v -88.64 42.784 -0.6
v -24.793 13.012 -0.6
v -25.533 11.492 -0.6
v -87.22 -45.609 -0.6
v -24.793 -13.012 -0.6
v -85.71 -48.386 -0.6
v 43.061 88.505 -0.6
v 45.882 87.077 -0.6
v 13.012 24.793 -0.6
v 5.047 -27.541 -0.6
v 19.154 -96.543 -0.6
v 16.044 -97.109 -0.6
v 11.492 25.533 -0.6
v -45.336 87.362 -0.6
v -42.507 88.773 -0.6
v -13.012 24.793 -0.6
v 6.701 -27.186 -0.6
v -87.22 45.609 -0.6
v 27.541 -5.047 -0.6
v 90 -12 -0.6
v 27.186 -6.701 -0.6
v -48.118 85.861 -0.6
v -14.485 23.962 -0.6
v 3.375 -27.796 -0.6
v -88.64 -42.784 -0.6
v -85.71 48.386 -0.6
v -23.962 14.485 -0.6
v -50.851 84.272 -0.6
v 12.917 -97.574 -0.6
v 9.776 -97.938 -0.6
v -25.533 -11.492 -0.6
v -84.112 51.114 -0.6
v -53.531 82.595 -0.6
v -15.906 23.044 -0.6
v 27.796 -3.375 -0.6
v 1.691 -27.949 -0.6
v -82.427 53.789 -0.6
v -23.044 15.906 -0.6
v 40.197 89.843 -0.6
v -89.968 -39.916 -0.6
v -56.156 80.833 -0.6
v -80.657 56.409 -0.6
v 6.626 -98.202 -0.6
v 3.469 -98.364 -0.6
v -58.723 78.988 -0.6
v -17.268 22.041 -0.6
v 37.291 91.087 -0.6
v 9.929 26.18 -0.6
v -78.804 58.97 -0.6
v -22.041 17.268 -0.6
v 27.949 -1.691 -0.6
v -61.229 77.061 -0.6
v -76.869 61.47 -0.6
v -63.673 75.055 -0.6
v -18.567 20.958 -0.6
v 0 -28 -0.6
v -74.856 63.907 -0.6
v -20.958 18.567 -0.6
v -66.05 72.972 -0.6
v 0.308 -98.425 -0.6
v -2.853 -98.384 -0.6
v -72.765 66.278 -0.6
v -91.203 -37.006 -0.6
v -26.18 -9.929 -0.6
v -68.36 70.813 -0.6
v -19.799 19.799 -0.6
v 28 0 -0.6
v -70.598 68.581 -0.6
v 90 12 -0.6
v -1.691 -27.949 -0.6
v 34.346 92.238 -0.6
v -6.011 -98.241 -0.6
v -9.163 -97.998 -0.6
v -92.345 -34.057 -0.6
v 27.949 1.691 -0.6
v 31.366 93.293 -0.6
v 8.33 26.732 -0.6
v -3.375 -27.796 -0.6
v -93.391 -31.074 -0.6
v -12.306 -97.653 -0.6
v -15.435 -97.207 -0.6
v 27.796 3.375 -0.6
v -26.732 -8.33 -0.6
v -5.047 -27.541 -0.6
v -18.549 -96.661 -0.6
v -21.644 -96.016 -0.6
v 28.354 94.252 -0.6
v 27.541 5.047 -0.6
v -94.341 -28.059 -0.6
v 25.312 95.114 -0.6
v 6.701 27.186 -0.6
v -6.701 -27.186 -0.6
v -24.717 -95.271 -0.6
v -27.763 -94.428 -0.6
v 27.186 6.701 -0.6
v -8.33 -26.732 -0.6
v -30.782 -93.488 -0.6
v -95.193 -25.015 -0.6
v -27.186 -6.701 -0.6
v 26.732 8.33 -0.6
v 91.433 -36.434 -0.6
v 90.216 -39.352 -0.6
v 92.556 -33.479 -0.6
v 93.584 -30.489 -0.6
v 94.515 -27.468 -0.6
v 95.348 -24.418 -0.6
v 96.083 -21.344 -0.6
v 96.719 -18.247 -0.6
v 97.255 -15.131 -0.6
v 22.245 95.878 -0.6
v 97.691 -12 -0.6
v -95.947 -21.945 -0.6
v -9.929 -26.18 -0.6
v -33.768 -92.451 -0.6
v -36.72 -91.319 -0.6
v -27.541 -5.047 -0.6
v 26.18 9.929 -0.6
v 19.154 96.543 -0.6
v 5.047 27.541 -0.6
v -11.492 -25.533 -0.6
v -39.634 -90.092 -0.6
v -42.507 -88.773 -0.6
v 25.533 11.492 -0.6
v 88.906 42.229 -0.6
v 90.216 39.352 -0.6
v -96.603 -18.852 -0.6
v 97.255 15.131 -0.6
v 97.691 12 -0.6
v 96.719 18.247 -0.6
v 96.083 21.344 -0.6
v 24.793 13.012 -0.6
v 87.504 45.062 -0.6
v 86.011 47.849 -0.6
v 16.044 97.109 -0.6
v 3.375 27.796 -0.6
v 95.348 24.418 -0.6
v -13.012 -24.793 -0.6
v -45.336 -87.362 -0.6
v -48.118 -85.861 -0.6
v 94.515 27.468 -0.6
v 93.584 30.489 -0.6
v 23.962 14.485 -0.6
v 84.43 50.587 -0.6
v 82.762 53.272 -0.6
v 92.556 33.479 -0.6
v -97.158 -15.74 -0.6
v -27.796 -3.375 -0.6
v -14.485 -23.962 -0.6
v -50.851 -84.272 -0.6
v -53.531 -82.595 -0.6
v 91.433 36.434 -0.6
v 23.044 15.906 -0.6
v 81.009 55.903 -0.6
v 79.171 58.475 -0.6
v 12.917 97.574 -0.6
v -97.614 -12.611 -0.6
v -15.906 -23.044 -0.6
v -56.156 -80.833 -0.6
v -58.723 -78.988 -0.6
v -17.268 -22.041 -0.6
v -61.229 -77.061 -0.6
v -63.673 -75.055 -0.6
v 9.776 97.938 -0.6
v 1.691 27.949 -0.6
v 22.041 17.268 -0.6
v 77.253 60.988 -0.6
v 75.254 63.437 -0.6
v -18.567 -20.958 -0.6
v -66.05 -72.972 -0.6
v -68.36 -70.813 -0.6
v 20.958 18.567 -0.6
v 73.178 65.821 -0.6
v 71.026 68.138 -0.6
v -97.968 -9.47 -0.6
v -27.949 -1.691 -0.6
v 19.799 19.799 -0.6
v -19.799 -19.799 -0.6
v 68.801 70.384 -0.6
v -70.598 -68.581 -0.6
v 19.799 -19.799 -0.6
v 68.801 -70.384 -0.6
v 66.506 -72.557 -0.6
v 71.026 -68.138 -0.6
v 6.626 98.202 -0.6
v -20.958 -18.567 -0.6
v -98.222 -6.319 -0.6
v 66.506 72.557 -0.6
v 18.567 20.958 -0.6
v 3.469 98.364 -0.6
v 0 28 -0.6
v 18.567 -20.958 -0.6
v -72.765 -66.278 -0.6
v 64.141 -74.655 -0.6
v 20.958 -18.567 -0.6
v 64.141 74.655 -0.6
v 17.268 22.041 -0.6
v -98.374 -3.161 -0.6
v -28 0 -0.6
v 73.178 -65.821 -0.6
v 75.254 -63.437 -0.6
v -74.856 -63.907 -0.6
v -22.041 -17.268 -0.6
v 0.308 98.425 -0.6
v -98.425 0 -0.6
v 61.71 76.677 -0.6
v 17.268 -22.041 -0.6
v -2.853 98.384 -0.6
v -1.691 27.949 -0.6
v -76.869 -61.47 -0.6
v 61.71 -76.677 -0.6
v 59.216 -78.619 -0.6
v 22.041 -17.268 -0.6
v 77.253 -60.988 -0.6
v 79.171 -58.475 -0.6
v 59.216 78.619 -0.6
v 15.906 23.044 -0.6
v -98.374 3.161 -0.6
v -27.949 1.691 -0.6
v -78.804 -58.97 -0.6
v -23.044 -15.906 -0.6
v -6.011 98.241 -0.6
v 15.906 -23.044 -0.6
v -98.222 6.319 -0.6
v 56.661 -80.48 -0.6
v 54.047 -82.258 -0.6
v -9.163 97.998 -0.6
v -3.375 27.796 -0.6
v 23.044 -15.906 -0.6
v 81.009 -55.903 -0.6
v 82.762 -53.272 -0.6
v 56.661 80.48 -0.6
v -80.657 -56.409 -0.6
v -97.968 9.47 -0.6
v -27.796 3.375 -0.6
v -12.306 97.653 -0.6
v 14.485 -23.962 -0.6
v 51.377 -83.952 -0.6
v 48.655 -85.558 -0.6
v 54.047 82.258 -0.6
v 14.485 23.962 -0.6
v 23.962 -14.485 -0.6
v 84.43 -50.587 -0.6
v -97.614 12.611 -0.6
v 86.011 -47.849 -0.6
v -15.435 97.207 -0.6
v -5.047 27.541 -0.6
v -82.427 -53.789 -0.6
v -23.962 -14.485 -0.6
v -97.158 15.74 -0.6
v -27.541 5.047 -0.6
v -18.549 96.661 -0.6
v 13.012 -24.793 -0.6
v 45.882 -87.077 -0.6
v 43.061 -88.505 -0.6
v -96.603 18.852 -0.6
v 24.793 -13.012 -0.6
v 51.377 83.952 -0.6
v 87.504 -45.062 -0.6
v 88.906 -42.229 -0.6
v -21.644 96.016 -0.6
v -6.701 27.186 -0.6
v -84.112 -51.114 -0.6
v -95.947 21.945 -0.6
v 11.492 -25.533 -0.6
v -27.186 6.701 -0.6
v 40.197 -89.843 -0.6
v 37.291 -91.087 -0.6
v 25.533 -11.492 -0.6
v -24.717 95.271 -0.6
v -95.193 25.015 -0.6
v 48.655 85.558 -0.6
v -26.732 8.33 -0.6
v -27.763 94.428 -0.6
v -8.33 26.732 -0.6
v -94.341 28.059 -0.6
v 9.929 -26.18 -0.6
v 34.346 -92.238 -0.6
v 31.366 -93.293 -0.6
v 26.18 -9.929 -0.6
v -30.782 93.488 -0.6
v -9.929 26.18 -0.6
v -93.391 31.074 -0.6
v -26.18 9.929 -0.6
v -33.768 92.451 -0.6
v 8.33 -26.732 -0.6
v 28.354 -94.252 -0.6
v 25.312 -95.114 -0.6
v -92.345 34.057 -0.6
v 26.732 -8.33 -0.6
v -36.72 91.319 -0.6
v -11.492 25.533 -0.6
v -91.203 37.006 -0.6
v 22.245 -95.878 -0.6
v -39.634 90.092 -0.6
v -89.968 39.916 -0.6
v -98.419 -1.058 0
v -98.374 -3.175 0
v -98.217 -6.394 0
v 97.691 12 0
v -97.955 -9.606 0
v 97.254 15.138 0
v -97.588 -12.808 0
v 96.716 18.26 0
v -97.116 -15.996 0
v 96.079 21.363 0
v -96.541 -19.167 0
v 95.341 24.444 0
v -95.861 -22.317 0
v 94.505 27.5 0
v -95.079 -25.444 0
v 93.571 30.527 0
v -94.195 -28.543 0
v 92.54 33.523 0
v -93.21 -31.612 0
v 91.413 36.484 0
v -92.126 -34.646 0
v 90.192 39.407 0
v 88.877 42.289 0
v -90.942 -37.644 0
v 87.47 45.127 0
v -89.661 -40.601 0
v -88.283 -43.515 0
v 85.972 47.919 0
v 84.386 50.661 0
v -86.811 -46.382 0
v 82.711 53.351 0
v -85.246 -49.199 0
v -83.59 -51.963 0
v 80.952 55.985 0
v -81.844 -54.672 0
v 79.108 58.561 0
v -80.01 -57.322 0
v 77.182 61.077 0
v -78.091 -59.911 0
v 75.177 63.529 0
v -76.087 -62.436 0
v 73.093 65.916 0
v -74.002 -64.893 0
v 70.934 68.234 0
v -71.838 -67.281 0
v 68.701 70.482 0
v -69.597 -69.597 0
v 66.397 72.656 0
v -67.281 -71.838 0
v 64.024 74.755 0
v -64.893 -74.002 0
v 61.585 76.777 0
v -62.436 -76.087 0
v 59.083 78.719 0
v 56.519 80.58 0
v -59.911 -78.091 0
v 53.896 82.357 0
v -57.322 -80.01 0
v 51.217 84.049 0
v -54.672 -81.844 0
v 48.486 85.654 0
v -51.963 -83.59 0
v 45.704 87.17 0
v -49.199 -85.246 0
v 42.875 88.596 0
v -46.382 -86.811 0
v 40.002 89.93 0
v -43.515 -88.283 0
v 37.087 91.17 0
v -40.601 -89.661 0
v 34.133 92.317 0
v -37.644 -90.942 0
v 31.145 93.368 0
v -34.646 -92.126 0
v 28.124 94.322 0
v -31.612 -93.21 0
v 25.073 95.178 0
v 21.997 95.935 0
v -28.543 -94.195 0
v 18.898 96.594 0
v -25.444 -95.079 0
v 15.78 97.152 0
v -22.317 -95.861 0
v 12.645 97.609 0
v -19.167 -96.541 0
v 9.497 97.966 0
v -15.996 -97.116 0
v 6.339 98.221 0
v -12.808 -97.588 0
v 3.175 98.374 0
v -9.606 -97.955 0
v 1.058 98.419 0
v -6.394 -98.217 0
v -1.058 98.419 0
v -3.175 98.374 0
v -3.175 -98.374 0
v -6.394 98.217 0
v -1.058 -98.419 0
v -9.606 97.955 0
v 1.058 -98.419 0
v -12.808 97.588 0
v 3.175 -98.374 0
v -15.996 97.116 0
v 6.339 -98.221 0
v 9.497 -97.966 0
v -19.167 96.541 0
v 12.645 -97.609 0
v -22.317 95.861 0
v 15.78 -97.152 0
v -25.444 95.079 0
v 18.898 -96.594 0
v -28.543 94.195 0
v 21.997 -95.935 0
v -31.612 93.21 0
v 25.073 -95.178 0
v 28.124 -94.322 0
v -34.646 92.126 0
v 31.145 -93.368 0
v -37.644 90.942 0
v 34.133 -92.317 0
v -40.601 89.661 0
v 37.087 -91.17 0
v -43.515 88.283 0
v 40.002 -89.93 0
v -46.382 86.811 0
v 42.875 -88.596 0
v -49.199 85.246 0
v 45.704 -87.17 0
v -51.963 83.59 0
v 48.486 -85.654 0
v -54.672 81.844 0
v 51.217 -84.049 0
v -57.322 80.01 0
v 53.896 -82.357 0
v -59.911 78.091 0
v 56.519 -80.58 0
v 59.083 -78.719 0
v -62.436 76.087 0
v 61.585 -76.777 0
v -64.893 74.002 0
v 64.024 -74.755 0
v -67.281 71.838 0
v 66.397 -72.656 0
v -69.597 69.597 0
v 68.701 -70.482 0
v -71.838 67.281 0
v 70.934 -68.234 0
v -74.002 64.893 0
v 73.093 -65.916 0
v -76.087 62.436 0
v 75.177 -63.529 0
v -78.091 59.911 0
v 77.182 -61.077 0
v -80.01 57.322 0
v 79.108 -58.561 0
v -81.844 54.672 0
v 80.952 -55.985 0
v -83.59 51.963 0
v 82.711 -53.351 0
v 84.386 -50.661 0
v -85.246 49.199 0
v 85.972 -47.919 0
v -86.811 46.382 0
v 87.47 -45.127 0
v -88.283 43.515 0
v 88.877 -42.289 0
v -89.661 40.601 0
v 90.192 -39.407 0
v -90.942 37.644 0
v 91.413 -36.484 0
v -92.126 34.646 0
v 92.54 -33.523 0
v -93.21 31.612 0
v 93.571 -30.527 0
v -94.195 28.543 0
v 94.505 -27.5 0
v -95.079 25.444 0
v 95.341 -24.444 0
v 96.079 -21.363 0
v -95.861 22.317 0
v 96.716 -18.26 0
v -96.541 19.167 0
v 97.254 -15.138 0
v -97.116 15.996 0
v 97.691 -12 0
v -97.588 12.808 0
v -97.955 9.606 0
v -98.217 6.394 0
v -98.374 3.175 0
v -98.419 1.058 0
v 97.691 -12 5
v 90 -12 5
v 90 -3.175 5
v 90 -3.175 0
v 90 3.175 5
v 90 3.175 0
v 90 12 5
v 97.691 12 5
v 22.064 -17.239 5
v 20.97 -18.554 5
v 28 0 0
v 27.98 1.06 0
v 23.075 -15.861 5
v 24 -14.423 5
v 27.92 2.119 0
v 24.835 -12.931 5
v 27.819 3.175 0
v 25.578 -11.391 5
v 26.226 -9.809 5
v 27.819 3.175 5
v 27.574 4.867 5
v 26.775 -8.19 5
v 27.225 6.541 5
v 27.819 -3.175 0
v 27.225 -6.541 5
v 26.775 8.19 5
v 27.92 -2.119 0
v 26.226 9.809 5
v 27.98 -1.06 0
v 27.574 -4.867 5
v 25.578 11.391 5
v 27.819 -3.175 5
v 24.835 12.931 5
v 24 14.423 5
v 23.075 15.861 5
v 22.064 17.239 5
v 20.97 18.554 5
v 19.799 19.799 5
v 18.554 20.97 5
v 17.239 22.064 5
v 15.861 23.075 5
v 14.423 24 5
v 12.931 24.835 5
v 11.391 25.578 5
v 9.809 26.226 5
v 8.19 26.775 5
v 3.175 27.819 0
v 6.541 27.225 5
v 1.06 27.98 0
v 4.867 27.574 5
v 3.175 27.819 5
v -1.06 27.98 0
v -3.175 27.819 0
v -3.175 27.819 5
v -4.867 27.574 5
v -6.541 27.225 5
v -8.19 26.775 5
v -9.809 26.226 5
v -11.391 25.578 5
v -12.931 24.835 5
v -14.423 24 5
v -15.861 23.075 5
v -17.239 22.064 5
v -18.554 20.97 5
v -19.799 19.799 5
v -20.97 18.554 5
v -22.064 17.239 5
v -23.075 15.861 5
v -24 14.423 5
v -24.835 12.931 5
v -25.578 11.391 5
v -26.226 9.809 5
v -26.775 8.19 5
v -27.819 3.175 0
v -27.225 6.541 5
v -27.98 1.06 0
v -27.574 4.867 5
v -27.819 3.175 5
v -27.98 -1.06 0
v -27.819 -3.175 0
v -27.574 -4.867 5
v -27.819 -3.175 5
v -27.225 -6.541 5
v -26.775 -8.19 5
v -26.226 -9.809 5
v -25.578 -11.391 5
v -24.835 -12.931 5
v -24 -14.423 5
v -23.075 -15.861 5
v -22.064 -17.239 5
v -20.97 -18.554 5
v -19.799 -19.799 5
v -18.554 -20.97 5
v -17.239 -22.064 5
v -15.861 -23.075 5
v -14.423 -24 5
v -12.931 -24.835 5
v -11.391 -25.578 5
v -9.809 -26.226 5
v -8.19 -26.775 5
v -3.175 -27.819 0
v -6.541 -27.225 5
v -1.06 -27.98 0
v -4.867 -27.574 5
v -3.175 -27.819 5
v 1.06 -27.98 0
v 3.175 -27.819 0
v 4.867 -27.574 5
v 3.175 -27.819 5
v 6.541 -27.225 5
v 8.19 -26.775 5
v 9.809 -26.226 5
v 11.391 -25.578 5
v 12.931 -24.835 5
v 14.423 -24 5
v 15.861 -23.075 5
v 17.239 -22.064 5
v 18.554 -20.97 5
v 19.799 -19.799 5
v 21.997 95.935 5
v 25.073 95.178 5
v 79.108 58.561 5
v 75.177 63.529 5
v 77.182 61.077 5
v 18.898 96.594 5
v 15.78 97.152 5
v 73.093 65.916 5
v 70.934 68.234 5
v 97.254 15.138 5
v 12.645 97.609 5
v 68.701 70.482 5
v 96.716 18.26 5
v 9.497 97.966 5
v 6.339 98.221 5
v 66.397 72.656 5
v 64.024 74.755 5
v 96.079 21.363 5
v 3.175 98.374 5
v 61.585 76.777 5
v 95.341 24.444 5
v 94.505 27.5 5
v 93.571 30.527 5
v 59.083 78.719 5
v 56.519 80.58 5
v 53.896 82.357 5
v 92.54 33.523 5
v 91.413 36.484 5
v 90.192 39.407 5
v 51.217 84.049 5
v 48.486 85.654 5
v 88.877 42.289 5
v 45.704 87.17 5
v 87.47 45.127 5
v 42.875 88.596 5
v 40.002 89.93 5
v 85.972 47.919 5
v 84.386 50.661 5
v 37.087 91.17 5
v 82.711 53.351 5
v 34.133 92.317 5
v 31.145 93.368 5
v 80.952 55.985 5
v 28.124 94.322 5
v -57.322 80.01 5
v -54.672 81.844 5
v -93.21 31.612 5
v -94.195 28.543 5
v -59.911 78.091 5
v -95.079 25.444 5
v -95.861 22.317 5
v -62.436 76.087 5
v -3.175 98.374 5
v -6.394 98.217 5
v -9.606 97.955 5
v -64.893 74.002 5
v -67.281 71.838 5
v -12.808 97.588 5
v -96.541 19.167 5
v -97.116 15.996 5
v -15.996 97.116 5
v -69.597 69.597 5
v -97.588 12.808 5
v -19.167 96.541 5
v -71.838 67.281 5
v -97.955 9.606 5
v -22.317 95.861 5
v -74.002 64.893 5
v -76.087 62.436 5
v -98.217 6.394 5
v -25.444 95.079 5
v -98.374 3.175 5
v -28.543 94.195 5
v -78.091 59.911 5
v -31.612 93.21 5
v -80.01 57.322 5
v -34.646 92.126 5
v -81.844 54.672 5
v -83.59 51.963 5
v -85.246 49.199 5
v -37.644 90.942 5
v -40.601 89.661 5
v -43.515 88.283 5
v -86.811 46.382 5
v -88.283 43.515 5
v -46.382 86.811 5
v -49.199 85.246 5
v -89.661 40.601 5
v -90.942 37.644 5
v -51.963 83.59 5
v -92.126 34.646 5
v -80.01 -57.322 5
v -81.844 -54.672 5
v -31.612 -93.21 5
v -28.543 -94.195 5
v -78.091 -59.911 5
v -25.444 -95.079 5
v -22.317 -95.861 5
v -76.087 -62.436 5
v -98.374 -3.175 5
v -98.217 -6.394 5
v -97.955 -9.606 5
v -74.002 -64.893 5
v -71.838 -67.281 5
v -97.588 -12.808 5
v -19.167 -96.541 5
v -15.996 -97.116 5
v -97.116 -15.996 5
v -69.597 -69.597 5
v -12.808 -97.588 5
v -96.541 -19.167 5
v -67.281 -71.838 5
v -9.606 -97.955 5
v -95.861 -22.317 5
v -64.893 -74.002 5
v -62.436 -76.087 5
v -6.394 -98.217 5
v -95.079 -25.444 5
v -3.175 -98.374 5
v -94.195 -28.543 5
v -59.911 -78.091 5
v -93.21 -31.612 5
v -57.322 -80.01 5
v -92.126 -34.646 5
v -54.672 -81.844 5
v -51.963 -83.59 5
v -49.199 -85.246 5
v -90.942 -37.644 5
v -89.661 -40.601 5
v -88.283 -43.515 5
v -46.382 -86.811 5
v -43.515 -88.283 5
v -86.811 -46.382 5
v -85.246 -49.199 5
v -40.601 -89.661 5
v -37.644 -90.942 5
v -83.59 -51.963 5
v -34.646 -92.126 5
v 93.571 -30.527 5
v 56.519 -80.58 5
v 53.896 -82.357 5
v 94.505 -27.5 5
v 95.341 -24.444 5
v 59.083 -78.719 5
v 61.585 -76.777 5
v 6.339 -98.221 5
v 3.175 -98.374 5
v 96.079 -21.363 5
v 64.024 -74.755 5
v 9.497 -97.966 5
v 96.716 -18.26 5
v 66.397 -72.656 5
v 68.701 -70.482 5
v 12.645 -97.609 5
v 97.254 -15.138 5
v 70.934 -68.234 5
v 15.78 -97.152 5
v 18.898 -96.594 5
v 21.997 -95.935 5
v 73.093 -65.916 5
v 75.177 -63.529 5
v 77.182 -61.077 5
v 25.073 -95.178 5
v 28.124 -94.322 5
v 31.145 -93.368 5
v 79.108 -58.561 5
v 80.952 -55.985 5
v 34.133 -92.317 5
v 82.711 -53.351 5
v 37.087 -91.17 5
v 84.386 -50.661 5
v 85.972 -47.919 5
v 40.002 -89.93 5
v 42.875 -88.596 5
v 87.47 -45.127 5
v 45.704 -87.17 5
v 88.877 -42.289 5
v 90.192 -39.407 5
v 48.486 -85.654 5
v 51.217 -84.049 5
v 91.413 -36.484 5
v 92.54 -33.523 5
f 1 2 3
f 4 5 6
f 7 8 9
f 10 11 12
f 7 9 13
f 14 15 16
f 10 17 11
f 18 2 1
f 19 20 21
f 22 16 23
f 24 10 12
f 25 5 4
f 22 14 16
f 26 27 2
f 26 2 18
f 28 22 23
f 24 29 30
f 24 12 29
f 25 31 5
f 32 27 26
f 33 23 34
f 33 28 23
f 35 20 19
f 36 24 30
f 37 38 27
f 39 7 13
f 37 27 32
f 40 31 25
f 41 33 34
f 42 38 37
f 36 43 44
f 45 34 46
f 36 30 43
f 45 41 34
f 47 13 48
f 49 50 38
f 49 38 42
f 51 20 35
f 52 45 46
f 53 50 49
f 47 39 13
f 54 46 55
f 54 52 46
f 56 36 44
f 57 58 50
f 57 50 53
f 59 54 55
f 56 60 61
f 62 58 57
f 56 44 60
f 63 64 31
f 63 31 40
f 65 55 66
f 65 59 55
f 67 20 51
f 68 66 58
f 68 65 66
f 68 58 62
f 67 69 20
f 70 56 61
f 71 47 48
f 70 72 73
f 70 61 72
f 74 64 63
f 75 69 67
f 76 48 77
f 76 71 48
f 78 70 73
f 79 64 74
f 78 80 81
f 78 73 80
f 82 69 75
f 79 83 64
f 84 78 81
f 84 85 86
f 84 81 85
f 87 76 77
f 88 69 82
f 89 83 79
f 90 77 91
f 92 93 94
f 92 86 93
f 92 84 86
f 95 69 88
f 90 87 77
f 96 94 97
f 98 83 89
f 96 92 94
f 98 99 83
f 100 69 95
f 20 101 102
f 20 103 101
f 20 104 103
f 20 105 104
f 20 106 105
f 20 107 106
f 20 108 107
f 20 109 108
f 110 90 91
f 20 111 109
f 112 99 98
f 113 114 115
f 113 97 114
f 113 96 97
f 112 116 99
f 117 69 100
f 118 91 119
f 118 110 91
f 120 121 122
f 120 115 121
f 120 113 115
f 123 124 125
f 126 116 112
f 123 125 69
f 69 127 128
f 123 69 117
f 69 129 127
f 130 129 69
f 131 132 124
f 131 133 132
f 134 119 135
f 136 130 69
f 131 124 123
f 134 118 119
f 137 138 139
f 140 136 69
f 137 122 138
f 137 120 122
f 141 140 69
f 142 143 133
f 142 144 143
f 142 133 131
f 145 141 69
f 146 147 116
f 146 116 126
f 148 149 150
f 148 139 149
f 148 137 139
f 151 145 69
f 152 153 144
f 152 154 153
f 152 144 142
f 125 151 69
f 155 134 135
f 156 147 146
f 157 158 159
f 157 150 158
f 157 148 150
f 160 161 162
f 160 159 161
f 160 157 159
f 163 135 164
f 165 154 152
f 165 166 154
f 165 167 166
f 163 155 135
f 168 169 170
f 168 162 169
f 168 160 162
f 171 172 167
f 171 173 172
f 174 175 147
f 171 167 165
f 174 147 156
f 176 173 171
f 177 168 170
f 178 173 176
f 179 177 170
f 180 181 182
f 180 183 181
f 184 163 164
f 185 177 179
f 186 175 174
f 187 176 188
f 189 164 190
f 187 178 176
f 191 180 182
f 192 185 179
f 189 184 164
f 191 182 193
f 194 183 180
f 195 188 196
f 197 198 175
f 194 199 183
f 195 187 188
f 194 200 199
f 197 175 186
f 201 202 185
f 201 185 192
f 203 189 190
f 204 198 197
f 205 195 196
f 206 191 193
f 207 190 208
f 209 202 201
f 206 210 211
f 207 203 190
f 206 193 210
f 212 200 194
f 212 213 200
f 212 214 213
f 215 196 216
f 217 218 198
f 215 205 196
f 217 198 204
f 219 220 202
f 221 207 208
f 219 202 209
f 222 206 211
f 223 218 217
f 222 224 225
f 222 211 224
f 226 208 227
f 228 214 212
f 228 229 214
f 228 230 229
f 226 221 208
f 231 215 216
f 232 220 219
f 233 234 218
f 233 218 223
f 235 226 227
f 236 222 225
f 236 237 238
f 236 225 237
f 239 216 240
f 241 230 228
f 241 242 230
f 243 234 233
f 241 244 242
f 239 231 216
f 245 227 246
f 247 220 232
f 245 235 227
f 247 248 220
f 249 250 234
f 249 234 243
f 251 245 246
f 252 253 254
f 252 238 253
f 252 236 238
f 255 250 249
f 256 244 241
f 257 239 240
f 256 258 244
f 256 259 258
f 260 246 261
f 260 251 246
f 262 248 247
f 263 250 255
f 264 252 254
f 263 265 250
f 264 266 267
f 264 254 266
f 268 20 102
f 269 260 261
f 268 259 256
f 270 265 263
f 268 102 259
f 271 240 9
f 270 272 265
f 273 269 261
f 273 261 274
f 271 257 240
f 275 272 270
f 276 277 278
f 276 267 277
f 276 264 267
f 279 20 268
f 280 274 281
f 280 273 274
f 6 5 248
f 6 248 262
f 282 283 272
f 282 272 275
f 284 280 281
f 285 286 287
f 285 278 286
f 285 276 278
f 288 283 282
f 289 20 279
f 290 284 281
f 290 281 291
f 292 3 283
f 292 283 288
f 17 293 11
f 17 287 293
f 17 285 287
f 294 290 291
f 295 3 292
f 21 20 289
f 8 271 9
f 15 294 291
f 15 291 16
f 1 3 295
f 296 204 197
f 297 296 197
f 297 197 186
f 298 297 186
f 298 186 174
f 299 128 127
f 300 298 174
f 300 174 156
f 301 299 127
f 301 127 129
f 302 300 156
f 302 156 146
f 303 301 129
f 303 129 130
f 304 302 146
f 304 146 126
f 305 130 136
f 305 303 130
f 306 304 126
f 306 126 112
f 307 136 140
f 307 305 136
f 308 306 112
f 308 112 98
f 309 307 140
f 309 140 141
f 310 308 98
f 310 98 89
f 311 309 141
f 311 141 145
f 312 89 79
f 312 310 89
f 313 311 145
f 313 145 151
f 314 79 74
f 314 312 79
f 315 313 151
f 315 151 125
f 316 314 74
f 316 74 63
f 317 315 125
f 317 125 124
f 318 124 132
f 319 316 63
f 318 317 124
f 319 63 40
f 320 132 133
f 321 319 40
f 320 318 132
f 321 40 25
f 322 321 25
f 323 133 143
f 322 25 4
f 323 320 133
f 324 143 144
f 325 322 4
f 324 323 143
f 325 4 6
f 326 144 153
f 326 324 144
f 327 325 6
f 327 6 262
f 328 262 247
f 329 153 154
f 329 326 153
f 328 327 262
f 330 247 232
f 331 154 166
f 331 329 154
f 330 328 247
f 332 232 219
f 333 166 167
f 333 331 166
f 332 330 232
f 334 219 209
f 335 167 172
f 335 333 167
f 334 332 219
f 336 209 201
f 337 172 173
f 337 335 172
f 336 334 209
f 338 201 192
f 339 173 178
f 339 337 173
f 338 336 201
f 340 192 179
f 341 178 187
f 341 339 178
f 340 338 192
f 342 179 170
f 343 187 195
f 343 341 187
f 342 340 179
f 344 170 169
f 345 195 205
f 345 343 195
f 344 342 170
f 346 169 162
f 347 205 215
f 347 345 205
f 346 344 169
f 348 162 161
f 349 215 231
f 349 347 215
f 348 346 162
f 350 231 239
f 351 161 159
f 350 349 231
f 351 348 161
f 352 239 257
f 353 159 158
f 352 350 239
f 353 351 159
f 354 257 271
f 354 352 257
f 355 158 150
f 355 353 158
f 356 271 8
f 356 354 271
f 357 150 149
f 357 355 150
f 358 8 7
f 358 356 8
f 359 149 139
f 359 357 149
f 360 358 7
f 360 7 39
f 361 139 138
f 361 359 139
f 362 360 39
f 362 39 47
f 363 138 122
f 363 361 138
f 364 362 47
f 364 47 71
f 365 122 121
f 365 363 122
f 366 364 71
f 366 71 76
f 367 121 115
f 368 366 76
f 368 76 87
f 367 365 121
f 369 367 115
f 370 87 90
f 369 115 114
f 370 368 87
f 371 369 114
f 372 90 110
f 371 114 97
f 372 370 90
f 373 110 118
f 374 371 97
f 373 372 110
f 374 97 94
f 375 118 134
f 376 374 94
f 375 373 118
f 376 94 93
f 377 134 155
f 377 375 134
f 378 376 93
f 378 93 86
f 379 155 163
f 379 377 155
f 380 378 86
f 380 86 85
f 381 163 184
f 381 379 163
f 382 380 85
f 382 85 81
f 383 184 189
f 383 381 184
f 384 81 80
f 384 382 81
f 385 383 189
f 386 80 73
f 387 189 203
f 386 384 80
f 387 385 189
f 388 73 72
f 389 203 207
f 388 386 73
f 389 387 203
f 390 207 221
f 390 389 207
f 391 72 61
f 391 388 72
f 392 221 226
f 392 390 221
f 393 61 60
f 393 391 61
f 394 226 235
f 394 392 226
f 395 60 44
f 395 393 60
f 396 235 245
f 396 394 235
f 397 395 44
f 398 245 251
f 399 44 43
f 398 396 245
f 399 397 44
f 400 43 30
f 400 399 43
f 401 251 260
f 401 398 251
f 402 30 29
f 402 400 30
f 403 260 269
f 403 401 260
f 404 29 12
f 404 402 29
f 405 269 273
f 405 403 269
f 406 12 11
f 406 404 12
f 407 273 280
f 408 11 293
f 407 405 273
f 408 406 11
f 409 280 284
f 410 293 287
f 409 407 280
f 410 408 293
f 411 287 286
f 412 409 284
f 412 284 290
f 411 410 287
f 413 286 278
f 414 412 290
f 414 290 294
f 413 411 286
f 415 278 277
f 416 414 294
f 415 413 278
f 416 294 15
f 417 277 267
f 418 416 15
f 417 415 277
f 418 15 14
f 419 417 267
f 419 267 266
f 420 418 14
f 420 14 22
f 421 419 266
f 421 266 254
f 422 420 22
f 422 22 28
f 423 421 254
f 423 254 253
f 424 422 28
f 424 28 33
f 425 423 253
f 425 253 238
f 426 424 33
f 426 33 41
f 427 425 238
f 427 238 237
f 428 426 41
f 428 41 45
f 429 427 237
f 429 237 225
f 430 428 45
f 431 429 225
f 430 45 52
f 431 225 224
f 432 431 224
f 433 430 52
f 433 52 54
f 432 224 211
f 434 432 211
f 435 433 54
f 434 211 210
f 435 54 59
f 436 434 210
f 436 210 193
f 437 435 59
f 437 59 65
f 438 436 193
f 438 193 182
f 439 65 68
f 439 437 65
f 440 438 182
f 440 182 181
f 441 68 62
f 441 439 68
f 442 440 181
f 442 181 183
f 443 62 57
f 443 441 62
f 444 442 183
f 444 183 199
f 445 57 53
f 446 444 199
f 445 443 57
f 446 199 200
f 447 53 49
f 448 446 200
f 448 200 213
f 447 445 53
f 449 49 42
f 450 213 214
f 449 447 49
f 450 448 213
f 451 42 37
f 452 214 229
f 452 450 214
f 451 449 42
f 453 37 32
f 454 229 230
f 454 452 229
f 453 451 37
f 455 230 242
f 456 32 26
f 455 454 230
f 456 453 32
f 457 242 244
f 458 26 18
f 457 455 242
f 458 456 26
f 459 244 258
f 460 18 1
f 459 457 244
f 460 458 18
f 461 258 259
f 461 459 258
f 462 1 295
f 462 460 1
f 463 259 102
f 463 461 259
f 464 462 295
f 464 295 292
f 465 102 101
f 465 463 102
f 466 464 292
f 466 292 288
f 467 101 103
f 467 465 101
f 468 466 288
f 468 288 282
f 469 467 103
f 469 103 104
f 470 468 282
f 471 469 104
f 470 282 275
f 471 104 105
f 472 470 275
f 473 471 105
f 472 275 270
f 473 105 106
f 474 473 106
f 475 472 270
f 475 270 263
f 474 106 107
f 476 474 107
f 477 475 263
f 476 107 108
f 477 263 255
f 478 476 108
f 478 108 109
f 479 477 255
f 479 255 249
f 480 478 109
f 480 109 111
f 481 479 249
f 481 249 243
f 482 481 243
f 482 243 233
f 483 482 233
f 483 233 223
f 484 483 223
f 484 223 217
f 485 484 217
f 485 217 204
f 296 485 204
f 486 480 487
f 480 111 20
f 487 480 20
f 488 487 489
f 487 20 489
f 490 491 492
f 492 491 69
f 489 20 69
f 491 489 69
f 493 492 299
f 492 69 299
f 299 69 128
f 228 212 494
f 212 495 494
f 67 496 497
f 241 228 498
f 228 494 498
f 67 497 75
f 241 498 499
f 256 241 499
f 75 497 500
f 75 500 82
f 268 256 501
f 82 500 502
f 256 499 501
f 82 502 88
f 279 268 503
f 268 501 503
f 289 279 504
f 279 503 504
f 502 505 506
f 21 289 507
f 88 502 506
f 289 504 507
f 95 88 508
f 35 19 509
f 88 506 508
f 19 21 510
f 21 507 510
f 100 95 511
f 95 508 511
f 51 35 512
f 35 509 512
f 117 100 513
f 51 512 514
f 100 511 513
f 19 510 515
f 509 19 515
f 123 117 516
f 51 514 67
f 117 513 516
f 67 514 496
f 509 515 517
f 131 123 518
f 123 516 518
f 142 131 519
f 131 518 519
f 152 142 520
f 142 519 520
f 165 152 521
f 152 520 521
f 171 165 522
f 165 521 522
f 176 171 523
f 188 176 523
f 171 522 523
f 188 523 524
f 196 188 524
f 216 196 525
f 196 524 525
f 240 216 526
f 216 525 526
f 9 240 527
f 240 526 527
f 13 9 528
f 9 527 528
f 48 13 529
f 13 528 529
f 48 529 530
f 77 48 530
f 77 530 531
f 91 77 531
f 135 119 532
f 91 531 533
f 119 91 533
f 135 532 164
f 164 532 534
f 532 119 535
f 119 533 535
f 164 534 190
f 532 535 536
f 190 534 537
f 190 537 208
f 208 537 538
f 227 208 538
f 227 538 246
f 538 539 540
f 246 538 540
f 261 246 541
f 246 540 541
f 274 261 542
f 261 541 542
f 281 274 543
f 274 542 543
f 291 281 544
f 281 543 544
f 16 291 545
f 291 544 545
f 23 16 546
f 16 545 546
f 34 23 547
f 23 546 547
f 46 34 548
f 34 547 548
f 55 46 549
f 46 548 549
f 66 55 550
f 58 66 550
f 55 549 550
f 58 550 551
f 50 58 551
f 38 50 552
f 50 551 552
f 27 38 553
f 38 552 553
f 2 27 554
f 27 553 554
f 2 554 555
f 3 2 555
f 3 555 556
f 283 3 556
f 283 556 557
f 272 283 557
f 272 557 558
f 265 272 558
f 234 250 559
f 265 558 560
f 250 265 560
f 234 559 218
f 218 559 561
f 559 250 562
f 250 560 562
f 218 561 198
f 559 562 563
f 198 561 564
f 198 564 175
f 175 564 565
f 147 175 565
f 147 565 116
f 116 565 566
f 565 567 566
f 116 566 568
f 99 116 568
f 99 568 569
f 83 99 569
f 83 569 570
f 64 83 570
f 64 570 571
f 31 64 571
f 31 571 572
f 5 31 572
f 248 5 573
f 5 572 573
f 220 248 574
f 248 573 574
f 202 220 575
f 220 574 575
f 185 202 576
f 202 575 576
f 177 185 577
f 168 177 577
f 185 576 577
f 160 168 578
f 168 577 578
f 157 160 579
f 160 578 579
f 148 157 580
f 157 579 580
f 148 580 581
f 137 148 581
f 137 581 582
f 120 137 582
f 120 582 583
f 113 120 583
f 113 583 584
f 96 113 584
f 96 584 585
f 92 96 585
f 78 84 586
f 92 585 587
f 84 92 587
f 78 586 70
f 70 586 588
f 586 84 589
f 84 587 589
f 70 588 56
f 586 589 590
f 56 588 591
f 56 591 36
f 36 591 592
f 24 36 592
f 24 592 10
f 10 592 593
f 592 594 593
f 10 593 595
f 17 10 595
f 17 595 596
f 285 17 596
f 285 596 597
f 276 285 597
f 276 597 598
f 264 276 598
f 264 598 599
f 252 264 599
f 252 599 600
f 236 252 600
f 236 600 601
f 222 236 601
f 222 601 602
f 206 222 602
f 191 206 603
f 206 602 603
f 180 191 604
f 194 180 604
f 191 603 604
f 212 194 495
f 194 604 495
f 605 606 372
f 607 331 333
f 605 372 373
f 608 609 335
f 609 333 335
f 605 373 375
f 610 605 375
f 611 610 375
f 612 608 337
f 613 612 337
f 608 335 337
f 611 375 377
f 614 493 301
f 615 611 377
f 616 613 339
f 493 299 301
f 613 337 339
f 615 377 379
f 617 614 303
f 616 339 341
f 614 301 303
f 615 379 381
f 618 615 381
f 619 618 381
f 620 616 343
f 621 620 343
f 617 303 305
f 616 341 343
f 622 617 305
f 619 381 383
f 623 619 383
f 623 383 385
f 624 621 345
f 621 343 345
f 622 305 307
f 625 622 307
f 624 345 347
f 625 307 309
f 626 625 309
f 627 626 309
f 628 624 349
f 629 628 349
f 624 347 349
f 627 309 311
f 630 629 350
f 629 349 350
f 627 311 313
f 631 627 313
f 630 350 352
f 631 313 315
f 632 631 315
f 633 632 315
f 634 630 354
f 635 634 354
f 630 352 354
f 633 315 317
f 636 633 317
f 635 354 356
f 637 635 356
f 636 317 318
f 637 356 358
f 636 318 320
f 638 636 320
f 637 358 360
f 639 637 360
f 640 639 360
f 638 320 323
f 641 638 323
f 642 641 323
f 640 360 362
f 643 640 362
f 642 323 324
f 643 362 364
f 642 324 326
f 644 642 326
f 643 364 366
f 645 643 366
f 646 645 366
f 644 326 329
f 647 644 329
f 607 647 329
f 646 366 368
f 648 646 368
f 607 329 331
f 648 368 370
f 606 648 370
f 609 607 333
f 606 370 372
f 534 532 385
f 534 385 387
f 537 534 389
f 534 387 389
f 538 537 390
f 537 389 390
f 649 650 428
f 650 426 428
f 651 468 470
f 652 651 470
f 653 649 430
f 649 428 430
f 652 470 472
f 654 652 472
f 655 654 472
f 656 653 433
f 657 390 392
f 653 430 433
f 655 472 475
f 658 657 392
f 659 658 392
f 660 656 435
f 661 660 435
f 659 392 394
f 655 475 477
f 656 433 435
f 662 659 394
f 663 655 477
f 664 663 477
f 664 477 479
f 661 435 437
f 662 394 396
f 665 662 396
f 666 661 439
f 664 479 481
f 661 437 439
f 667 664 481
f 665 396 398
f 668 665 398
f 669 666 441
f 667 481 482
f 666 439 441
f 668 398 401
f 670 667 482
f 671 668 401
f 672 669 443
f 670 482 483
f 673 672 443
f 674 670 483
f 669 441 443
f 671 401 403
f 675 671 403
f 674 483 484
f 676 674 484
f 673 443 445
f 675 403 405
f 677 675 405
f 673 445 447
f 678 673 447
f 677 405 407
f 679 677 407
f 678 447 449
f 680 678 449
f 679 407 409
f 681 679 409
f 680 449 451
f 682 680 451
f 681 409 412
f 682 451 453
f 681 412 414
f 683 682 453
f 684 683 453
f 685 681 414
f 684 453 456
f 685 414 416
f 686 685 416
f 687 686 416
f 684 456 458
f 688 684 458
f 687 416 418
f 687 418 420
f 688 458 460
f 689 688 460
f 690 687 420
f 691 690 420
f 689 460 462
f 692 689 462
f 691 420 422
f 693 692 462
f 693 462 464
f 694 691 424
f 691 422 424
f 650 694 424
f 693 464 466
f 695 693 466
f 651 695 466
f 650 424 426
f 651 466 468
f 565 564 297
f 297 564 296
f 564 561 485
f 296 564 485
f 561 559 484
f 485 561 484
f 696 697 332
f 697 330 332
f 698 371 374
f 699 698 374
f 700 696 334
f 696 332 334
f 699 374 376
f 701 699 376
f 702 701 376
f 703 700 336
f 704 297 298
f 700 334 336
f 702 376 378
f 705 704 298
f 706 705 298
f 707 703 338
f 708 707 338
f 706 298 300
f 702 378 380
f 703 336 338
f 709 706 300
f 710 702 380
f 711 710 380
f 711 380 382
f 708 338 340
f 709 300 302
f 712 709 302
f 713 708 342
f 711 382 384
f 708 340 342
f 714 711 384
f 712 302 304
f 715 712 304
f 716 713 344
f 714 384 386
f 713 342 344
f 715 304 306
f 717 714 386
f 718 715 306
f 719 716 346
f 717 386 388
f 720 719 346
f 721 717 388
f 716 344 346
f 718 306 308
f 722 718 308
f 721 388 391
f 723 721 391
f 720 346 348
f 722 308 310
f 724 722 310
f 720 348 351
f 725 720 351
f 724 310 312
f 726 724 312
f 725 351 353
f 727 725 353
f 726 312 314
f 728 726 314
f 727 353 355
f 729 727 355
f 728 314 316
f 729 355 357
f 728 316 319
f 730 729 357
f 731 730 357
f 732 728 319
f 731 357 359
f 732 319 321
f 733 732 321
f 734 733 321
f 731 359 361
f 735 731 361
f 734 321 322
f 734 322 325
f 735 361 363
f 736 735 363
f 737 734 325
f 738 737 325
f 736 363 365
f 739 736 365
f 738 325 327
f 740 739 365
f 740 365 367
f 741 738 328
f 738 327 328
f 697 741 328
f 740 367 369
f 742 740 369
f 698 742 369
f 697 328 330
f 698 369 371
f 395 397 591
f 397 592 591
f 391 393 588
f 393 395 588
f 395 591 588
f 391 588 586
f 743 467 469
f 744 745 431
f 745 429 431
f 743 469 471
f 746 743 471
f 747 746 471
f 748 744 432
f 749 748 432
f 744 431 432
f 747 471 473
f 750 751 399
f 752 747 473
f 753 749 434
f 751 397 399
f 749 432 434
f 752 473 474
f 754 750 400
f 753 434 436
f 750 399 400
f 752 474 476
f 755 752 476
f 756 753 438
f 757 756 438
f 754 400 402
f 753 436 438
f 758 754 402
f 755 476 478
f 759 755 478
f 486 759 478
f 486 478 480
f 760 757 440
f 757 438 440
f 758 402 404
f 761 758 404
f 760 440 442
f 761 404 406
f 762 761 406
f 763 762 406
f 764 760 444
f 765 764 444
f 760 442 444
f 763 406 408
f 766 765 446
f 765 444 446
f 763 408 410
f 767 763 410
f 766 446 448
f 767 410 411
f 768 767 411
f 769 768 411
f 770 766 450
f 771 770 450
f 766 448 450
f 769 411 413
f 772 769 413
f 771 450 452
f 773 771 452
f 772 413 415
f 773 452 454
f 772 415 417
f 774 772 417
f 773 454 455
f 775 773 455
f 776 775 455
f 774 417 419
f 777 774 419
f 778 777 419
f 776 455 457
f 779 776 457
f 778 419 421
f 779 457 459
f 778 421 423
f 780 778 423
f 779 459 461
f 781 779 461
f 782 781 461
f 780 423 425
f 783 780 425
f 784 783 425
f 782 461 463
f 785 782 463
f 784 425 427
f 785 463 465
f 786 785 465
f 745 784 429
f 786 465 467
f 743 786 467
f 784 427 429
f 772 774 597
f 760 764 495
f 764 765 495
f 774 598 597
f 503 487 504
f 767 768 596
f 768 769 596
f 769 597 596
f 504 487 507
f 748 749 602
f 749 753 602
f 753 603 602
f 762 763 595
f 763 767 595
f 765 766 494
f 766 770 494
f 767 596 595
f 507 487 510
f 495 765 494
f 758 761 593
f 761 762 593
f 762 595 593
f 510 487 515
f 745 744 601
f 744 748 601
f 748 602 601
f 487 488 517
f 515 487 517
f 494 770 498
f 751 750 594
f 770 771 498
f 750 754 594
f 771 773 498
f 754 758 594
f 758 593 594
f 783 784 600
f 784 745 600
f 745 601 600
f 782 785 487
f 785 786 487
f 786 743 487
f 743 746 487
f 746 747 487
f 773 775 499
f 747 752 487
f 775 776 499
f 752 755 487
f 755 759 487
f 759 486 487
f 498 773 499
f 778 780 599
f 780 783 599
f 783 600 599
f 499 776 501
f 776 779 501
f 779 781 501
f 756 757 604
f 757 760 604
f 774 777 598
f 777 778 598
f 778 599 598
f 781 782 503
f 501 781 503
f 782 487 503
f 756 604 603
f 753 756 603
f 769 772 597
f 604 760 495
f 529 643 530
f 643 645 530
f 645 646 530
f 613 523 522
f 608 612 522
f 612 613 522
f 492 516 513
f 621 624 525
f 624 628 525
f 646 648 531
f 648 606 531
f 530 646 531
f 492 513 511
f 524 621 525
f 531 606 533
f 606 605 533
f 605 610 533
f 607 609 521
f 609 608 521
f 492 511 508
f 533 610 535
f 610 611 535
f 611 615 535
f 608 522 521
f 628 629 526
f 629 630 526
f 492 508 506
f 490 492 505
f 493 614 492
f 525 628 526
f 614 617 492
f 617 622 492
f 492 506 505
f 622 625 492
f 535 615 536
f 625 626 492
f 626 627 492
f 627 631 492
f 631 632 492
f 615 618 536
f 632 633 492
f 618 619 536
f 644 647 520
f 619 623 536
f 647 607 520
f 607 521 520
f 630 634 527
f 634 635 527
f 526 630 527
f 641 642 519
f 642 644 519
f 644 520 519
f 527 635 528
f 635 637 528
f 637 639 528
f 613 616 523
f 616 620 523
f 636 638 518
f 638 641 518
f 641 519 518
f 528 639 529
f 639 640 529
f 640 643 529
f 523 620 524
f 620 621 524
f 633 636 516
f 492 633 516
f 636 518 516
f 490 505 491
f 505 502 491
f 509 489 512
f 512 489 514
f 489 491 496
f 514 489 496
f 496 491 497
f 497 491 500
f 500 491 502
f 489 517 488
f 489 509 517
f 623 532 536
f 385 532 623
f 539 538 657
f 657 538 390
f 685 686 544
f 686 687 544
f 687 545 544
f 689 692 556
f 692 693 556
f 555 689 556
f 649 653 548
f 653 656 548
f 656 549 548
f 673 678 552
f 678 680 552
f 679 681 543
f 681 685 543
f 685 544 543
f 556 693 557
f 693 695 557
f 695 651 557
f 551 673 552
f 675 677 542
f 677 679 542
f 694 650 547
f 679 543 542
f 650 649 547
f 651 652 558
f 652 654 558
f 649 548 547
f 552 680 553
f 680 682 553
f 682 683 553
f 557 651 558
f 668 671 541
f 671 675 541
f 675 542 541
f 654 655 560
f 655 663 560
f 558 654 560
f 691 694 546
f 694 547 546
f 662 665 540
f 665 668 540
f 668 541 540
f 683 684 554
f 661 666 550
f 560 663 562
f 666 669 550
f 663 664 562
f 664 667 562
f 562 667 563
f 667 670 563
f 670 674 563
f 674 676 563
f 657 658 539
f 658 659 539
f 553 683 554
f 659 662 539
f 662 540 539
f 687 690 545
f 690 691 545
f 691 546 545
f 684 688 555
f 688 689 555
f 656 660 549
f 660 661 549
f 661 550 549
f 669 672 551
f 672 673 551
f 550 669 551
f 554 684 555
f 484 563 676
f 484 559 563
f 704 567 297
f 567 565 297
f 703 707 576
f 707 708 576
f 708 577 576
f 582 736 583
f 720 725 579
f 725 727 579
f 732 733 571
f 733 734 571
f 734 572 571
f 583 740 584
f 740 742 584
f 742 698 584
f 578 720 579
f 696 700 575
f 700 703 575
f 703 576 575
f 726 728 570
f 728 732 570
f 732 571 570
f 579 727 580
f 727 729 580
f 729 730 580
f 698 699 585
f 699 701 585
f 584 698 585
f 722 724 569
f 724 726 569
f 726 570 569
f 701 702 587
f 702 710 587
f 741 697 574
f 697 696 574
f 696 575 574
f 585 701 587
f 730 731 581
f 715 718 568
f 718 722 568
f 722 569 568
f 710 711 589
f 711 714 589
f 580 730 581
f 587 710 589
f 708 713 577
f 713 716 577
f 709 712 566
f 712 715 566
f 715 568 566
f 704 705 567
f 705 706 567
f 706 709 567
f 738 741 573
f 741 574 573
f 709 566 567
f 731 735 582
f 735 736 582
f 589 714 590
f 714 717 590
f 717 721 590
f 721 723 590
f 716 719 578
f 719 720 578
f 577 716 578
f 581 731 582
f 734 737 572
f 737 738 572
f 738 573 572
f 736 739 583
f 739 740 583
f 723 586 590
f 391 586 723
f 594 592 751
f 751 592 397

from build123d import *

# Parameters (mm, degrees)
SKETCH_R           = 98.425
PAD_DEPTH          = 0.6
PAD001_DEPTH       = 5
POLARPATTERN_COUNT = 4
SKETCH002_R        = 28
POCKET_DEPTH       = 5.601
SKETCH003_W        = 15
SKETCH003_H        = 24
POCKET001_DEPTH    = 5.601


with BuildPart() as part:
    # Sketch → Pad (new body)
    with BuildSketch(Plane.XY):
        Circle(SKETCH_R)
    extrude(amount=-PAD_DEPTH)

    # Sketch001 → Pad001 (new body)
    with BuildSketch(Plane.XY):
        with BuildLine():
            ThreePointArc((3.175, -21.997045), (15.715448, -15.715448), (21.997045, -3.175))
            Line((21.997045, -3.175), (98.373777, -3.175))
            ThreePointArc((3.175, -98.373777), (69.596985, -69.596985), (98.373777, -3.175))
            Line((3.175, -21.997045), (3.175, -98.373777))
        make_face()
    pad001 = extrude(amount=PAD001_DEPTH)

    # PolarPattern: Pad001 ×4 about axis
    polarpattern_axis = Axis((0, 0, 0), (0, 0, 1))
    for i in range(1, POLARPATTERN_COUNT):
        add(pad001.rotate(polarpattern_axis, i * 360 / POLARPATTERN_COUNT))

    # Sketch002 → Pocket (cut, through all)
    with BuildSketch(Plane.XY.offset(5)):
        Circle(SKETCH002_R)
    extrude(amount=-POCKET_DEPTH, mode=Mode.SUBTRACT)

    # Sketch003 → Pocket001 (cut, through all)
    with BuildSketch(Plane(origin=(0, 0, -0.6), x_dir=(1, 0, 0), z_dir=(0, 0, -1))):
        with Locations((97.5, 0)):
            Rectangle(SKETCH003_W, SKETCH003_H)
    extrude(amount=-POCKET001_DEPTH, mode=Mode.SUBTRACT)


solid = part.part
